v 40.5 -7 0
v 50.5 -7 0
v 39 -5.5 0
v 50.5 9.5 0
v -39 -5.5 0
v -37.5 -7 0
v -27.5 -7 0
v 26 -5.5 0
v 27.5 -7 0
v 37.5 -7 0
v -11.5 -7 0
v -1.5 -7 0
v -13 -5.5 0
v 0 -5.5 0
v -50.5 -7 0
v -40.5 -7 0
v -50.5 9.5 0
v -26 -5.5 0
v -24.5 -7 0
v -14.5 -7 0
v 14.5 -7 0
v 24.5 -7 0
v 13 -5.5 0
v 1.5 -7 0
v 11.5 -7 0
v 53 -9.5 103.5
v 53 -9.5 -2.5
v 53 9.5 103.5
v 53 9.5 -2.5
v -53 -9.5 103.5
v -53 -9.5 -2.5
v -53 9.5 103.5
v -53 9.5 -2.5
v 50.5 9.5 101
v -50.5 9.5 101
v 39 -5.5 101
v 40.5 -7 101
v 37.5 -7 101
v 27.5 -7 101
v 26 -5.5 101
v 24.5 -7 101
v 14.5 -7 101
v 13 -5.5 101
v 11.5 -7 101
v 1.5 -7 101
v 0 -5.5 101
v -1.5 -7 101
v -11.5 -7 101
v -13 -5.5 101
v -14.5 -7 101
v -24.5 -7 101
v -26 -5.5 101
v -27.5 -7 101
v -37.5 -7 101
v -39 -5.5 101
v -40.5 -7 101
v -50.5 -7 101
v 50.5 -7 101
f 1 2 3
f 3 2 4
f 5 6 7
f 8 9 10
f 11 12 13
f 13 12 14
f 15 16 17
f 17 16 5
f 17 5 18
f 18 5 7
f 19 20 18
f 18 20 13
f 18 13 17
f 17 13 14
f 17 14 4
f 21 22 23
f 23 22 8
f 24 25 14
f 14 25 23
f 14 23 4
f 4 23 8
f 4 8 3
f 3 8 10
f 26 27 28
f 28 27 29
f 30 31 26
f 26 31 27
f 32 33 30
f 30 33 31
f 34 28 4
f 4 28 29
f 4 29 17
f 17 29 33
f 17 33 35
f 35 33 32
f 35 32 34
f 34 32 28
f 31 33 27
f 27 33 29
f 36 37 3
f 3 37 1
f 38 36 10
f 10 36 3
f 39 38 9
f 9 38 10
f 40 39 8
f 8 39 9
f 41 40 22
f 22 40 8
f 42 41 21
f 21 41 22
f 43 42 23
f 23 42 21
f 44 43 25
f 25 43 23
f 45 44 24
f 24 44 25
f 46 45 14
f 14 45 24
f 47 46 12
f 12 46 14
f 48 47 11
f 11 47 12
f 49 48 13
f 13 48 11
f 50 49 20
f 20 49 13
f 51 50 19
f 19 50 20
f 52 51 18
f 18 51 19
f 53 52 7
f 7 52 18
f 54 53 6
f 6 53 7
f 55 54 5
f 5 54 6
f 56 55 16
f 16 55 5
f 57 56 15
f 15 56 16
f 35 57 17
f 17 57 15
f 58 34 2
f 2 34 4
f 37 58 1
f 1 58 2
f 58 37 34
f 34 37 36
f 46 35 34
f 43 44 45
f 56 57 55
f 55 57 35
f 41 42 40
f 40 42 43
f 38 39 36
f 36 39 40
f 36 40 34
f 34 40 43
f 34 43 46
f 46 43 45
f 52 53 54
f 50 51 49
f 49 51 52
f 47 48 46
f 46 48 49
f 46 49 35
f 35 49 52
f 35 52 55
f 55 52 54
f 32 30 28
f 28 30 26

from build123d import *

# Parameters (mm, degrees)
SKETCH1_W           = 106
SKETCH1_H           = 19
BOSS_EXTRUDE1_DEPTH = 2.5
BOSS_EXTRUDE2_DEPTH = 50.5


with BuildPart() as part:
    # Sketch1 → Boss-Extrude1 (new body)
    with BuildSketch(Plane.XY):
        Rectangle(SKETCH1_W, SKETCH1_H)
    extrude(amount=-BOSS_EXTRUDE1_DEPTH)

    # Sketch1<3> → Boss-Extrude2 (add)
    with BuildSketch(Plane.XY):
        Polygon((-40.5, -7), (-50.5, -7), (-50.5, 9.5), (-53, 9.5), (-53, -9.5), (53, -9.5), (53, 9.5), (50.5, 9.5), (50.5, -7), (40.5, -7), (39, -5.5), (37.5, -7), (27.5, -7), (26, -5.5), (24.5, -7), (14.5, -7), (13, -5.5), (11.5, -7), (1.5, -7), (0, -5.5), (-1.5, -7), (-11.5, -7), (-13, -5.5), (-14.5, -7), (-24.5, -7), (-26, -5.5), (-27.5, -7), (-37.5, -7), (-39, -5.5), align=None)
    extrude(amount=BOSS_EXTRUDE2_DEPTH)

    # Mirror4: part across plane


with BuildPart() as part_1:
    add(part.part)
    add(part.part.mirror(Plane.XY.offset(50.5)))


solid = part_1.part
